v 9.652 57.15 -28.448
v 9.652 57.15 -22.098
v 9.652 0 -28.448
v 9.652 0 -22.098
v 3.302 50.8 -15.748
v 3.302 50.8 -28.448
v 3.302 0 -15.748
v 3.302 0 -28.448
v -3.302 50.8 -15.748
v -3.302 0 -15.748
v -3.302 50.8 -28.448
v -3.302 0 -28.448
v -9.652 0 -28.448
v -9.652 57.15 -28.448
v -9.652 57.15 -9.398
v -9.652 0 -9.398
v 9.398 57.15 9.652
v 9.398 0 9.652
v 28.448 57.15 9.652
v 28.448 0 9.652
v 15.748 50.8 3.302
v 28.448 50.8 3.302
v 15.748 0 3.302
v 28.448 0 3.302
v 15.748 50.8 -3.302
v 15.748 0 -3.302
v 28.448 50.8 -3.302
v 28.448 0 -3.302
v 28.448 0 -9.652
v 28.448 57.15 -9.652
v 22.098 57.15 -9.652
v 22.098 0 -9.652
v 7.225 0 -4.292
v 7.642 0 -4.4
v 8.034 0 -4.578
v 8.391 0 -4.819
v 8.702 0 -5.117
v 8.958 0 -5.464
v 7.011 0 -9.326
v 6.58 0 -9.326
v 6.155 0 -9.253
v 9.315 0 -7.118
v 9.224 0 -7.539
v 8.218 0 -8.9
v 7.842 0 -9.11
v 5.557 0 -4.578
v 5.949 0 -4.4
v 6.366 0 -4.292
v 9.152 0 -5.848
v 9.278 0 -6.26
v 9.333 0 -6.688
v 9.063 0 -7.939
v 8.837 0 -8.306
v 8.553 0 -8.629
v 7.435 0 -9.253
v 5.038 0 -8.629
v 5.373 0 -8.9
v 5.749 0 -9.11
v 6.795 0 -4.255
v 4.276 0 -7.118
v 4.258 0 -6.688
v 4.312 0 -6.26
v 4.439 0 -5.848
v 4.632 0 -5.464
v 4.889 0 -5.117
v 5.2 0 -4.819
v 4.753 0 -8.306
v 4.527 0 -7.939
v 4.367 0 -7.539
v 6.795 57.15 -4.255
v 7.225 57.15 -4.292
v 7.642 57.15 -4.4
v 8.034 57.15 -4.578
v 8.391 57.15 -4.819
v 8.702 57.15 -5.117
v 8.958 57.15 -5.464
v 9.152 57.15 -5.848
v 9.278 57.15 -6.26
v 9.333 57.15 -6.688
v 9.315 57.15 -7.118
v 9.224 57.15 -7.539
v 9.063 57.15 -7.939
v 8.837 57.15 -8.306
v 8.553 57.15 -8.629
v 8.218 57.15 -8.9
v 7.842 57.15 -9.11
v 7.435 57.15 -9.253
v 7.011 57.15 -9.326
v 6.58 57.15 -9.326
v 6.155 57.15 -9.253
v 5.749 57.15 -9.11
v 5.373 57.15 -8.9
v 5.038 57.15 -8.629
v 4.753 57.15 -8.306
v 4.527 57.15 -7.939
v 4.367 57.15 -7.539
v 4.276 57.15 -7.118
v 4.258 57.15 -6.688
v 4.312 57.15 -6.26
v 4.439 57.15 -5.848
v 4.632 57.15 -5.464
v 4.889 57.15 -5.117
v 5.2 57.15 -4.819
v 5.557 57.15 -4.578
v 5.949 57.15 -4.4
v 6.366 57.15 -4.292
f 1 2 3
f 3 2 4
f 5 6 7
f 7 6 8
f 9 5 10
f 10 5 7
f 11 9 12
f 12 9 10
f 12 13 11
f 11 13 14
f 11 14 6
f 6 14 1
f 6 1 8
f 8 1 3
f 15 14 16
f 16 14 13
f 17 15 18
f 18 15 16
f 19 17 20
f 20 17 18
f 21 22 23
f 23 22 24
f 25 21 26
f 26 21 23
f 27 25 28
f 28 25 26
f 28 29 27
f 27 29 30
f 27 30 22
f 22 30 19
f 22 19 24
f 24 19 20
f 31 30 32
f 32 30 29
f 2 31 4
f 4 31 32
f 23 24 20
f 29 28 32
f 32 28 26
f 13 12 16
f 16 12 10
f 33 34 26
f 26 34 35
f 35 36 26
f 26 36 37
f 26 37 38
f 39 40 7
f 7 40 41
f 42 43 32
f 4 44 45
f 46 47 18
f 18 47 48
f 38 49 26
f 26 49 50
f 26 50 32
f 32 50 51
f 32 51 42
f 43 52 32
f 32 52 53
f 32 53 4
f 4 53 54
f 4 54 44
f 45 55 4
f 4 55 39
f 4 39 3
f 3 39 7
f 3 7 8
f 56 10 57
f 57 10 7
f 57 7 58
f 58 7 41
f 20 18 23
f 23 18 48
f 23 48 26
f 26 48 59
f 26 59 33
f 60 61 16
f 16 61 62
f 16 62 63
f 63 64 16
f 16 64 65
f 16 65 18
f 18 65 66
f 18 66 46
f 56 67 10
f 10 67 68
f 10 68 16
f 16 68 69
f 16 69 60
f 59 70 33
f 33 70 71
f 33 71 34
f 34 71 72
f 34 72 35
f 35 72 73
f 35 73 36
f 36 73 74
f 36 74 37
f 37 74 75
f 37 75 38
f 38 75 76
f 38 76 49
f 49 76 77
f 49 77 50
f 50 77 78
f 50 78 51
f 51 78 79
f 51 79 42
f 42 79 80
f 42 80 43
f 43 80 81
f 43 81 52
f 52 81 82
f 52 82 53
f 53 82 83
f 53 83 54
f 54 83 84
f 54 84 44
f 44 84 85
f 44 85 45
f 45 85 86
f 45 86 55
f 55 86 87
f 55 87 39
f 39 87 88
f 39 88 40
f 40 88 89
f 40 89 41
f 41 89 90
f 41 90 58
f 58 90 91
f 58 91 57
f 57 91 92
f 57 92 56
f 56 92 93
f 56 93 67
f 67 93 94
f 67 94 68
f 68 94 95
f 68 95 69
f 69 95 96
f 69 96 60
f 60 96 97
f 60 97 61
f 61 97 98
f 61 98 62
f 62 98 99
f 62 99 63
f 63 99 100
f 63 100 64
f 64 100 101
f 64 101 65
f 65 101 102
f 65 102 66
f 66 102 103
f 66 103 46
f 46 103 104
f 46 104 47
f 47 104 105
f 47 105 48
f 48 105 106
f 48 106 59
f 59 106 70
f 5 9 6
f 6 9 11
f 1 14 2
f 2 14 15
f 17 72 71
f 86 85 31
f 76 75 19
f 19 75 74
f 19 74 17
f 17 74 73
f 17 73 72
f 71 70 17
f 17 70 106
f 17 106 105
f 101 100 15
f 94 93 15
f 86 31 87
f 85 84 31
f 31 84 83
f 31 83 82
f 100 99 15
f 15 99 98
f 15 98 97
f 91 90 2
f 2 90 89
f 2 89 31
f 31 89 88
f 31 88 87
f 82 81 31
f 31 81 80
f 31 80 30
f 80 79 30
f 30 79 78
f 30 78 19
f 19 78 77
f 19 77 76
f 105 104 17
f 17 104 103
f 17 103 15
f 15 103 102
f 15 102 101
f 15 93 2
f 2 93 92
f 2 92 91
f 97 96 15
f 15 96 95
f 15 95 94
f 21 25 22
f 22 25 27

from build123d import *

# Parameters (mm, degrees)
BOSS_EXTRUDE1_DEPTH         = 50.8
TAP_DRILL_FOR_1_4_20_TAP1_D = 5.08
SKETCH4_R                   = 2.54
BOSS_EXTRUDE2_DEPTH         = 6.35


with BuildPart() as part:
    # Sketch1 → Boss-Extrude1 (new body)
    with BuildSketch(Plane(origin=(0, 0, 0), x_dir=(1, 0, 0), z_dir=(0, 1, 0))):
        Polygon((22.098, 9.652), (9.652, 22.098), (9.652, 28.448), (3.302, 28.448), (3.302, 15.748), (-3.302, 15.748), (-3.302, 28.448), (-9.652, 28.448), (-9.652, 9.398), (9.398, -9.652), (28.448, -9.652), (28.448, -3.302), (15.748, -3.302), (15.748, 3.302), (28.448, 3.302), (28.448, 9.652), align=None)
    extrude(amount=BOSS_EXTRUDE1_DEPTH)

    # Tap Drill for 1/4-20 Tap1 (through all)
    with Locations(Plane(origin=(0, 50.8, 0), x_dir=(1, 0, 0), z_dir=(0, 1, 0))):
        with Locations((6.795346667, 6.795346667)):
            Hole(TAP_DRILL_FOR_1_4_20_TAP1_D / 2)

    # Sketch4 → Boss-Extrude2 (add)
    with BuildSketch(Plane(origin=(0, 50.8, 0), x_dir=(1, 0, 0), z_dir=(0, 1, 0))):
        Polygon((-3.302, 28.448), (3.302, 28.448), (9.652, 28.448), (9.652, 22.098), (22.098, 9.652), (28.448, 9.652), (28.448, 3.302), (28.448, -3.302), (28.448, -9.652), (9.398, -9.652), (-9.652, 9.398), (-9.652, 28.448), align=None)
        with Locations(Location((6.795346667, 6.795346667, 0), (0, 0, 270))):
            Circle(SKETCH4_R, mode=Mode.SUBTRACT)
    extrude(amount=BOSS_EXTRUDE2_DEPTH)


solid = part.part
